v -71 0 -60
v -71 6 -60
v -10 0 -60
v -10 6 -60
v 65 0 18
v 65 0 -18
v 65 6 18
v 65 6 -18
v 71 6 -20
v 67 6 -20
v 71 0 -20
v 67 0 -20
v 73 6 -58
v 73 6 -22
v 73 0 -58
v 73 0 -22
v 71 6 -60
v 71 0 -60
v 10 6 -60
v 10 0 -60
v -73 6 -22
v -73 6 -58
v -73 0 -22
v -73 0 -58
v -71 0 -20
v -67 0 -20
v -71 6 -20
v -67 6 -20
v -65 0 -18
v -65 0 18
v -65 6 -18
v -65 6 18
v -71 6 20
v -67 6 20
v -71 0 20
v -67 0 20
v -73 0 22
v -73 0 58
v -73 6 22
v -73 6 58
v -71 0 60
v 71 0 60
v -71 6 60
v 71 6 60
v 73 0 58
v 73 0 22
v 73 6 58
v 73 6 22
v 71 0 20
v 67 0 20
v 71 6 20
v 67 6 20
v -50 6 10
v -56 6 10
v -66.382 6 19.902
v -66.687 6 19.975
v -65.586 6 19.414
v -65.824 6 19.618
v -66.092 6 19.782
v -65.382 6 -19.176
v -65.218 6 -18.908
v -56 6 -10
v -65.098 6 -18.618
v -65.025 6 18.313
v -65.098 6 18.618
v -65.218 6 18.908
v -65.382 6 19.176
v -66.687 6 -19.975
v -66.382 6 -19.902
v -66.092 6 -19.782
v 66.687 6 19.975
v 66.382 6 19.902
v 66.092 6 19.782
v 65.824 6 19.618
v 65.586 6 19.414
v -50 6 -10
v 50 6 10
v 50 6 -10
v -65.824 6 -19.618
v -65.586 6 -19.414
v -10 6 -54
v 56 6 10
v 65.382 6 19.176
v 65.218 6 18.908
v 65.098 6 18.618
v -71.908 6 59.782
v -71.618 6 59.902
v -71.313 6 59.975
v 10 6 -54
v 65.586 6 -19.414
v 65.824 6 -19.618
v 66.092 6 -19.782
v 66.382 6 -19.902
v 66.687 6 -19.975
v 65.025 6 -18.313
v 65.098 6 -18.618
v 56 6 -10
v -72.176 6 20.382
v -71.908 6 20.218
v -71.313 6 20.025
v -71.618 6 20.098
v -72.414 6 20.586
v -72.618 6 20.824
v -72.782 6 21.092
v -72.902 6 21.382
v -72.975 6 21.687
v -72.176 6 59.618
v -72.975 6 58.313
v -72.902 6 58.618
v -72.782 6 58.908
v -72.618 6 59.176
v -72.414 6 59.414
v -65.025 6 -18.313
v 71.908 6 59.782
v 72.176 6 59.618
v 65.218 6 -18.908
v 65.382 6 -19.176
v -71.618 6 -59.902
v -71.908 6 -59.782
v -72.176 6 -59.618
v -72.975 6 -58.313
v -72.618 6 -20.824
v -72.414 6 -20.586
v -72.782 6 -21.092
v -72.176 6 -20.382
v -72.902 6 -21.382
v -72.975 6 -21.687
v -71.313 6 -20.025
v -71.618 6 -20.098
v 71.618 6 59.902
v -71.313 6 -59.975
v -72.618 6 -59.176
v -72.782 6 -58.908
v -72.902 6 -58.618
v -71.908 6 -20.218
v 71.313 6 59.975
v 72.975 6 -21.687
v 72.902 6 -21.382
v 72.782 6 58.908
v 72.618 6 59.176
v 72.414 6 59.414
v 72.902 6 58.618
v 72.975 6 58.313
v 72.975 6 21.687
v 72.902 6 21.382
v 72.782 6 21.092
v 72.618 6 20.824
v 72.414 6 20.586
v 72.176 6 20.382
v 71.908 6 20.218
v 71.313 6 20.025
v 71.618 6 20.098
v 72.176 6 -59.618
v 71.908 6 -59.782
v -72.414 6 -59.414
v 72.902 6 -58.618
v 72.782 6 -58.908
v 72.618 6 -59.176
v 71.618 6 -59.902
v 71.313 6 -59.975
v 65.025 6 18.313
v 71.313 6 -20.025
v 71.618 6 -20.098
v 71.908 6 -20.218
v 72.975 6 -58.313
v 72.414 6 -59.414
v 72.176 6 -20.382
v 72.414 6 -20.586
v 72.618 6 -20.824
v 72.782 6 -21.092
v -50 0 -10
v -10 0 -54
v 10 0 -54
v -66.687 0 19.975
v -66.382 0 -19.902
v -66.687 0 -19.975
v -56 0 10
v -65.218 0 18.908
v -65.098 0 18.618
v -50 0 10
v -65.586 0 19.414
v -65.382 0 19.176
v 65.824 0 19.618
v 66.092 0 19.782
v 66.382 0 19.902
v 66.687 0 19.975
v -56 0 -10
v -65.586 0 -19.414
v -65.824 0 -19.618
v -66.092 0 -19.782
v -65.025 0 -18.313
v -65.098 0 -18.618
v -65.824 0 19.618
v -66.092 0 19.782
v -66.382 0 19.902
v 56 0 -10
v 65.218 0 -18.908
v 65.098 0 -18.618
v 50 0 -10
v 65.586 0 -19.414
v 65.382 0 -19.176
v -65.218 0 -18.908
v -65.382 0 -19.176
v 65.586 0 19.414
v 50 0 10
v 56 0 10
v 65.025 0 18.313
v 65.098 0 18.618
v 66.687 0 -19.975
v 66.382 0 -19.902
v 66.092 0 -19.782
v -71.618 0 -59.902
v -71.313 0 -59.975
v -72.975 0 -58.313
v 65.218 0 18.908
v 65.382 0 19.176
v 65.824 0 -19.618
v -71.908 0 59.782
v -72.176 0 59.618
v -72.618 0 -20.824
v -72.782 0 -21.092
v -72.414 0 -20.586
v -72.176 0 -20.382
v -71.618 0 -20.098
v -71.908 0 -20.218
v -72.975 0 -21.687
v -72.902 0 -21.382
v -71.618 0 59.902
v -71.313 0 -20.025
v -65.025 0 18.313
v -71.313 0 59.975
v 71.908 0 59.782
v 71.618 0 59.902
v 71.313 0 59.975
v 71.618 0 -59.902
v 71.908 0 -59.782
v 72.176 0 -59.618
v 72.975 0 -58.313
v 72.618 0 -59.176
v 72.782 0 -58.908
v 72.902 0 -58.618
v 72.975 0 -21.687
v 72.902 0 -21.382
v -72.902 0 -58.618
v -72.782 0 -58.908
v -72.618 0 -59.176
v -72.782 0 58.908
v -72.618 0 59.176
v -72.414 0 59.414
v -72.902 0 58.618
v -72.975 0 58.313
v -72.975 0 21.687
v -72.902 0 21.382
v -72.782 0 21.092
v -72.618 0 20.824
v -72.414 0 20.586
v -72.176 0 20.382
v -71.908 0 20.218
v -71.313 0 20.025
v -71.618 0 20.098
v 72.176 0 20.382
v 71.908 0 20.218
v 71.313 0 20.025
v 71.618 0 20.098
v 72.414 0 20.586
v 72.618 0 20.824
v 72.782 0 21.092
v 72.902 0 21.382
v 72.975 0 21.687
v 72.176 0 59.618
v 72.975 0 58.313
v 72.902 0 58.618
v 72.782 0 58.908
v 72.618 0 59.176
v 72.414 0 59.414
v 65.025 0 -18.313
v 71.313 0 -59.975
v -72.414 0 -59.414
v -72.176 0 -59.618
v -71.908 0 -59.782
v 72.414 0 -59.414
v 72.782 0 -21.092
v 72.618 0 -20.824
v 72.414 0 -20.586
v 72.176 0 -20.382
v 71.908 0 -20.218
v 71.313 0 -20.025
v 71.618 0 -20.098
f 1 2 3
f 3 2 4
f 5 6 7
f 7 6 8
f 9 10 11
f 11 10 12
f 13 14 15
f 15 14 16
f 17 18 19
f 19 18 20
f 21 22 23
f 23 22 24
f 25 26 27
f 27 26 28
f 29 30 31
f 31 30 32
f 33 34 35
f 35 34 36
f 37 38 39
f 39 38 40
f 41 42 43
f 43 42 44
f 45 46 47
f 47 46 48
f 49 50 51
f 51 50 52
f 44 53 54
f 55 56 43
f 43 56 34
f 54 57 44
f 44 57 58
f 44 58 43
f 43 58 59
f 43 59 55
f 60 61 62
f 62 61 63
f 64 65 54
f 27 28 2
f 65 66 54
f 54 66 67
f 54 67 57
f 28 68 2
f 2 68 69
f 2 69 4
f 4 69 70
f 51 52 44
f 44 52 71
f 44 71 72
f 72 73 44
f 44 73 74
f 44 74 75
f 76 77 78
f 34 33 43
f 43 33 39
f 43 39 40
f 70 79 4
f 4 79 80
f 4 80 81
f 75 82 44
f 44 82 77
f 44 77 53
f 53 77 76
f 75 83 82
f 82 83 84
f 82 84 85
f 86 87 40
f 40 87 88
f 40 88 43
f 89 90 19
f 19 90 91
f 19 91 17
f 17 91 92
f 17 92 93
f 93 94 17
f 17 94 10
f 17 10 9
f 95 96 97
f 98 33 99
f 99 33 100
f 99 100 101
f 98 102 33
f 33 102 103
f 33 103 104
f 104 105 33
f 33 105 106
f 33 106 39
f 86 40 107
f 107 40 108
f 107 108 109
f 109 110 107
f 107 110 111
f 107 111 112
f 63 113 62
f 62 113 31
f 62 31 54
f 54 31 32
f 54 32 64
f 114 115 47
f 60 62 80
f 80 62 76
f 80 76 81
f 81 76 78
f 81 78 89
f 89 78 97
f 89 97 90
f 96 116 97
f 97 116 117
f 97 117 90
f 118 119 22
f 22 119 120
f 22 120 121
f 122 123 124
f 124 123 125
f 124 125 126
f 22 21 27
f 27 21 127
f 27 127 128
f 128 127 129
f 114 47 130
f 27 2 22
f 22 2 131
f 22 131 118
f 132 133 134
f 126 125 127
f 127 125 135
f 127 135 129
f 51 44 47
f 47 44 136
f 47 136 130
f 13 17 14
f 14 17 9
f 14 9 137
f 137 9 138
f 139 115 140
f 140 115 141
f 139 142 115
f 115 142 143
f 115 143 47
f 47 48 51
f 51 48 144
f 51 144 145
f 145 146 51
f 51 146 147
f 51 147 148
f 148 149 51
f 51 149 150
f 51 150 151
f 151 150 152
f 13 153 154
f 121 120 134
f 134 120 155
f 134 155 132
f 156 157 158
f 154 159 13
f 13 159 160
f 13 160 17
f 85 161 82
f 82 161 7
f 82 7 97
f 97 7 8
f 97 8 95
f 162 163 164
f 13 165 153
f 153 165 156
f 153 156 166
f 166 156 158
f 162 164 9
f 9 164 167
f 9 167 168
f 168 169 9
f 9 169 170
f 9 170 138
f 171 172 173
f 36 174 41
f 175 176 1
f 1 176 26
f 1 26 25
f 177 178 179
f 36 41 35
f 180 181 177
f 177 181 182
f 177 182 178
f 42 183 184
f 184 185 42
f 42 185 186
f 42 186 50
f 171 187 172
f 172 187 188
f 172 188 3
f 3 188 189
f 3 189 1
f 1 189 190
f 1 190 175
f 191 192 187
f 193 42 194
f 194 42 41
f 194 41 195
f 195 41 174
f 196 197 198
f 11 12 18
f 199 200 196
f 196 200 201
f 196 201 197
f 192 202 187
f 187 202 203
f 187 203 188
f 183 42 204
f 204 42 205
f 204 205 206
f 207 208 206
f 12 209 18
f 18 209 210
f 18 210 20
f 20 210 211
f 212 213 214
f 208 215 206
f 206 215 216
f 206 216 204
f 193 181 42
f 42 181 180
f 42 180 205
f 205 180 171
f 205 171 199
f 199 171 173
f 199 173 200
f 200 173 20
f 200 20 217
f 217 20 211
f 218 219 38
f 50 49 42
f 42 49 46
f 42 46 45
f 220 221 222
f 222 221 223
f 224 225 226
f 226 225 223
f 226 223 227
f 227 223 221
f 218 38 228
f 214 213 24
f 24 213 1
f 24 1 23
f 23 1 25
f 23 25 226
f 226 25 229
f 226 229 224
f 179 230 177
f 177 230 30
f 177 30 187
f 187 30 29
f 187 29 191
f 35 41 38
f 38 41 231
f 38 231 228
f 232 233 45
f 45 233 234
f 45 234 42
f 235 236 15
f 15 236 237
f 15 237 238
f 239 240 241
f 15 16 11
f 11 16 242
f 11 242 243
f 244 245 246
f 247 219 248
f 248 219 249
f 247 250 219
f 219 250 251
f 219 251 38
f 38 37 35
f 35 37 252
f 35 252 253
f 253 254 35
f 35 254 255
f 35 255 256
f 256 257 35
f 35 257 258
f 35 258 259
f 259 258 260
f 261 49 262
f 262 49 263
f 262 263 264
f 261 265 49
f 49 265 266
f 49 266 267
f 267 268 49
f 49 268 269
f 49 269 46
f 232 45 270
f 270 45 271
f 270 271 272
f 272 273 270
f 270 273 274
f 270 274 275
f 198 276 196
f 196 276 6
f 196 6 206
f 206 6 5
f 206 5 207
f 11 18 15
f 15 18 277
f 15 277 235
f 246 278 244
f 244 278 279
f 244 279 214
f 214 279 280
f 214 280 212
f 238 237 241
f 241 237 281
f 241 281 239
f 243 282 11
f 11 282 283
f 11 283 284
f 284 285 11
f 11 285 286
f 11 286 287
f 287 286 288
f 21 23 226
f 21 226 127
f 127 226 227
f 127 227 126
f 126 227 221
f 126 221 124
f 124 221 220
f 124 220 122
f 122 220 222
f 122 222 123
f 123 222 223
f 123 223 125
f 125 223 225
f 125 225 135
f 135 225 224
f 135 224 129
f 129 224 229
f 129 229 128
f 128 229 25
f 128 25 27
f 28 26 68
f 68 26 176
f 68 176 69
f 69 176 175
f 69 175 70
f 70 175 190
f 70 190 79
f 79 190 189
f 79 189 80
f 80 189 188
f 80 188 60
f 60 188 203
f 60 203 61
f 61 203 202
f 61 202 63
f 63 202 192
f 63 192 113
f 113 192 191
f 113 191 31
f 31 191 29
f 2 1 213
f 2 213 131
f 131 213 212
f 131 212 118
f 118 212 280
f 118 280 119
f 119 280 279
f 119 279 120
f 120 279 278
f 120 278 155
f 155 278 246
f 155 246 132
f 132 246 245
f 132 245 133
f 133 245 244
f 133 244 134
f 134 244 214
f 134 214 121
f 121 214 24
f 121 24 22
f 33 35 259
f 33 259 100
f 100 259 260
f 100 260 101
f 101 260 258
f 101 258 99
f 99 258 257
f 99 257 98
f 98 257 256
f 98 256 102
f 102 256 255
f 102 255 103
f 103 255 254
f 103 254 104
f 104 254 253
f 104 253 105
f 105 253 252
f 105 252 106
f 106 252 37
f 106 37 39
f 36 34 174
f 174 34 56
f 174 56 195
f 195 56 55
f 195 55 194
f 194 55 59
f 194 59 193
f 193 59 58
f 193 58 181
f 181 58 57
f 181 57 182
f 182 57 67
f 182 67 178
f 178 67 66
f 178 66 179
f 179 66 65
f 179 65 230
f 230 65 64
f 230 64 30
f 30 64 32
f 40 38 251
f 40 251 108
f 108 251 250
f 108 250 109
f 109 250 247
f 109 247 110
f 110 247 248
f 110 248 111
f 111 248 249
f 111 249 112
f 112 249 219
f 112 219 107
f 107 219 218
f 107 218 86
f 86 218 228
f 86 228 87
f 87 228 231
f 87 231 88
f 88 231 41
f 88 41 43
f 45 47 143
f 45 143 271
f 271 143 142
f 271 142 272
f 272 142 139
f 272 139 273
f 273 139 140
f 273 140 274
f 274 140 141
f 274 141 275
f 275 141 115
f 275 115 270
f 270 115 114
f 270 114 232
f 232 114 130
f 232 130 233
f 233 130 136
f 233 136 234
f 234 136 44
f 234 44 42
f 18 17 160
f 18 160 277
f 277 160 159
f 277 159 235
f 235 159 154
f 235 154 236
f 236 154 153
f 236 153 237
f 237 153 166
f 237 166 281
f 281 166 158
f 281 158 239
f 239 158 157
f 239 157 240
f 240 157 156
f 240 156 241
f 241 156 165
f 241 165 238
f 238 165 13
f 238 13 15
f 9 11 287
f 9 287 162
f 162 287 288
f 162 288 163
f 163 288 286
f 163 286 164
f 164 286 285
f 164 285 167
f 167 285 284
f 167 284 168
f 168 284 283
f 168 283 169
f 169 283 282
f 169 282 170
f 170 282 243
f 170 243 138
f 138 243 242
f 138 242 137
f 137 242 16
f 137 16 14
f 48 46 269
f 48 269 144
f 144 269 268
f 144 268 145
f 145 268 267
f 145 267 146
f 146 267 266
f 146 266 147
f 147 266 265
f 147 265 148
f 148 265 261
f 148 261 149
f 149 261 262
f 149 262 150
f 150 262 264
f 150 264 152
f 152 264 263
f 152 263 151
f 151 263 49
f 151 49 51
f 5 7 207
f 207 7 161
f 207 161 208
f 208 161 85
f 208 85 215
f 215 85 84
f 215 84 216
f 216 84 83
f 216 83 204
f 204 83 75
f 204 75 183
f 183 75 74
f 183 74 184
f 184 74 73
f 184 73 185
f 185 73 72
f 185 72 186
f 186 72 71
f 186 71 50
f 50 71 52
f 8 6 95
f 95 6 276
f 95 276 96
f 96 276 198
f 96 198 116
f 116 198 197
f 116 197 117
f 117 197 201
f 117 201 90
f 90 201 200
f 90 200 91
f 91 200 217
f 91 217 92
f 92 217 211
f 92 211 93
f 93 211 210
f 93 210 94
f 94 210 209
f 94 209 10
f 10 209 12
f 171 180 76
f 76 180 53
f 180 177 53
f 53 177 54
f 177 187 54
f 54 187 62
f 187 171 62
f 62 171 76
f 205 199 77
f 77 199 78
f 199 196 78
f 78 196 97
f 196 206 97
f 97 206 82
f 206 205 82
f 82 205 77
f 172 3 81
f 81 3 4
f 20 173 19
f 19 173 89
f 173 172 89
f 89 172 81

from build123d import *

# Parameters (mm, degrees)
BOSS_EXTRUDE1_DEPTH     = 6
FILLET1_R               = 2
CUT_EXTRUDE1_DEPTH      = 95.683683917
CUT_EXTRUDE1_DEPTH_BACK = 95.683683917
SKETCH2_W               = 6
SKETCH2_H               = 20
SKETCH3_W               = 20
SKETCH3_H               = 6
CUT_EXTRUDE2_DEPTH      = 95.683683917


with BuildPart() as part:
    # Sketch1 → Boss-Extrude1 (new body)
    with BuildSketch(Plane(origin=(0, 0, 0), x_dir=(1, 0, 0), z_dir=(0, 1, 0))):
        Polygon((65, 20), (65, -20), (73, -20), (73, -60), (-73, -60), (-73, -20), (-65, -20), (-65, 20), (-73, 20), (-73, 60), (73, 60), (73, 20), align=None)
    extrude(amount=BOSS_EXTRUDE1_DEPTH)

    # Fillet1
    fillet1_edges = [part.edges().sort_by_distance(p)[0] for p in [
        (65, 3, 20),
        (73, 3, 20),
        (73, 3, 60),
        (-73, 3, 60),
        (-73, 3, 20),
        (-65, 3, 20),
        (-65, 3, -20),
        (-73, 3, -20),
        (-73, 3, -60),
        (73, 3, -60),
        (73, 3, -20),
        (65, 3, -20),
    ]]
    fillet(fillet1_edges, radius=FILLET1_R)

    # Sketch2 → Cut-Extrude1 (cut, two sides: drawn at the far end of the back side and taken through both)
    with BuildSketch(Plane(origin=(0, 6, 0), x_dir=(1, 0, 0), z_dir=(0, 1, 0)).offset(-CUT_EXTRUDE1_DEPTH_BACK)):
        with Locations((53, 0)):
            Rectangle(SKETCH2_W, SKETCH2_H)
        with Locations((-53, 0)):
            Rectangle(SKETCH2_W, SKETCH2_H)
    extrude(amount=CUT_EXTRUDE1_DEPTH + CUT_EXTRUDE1_DEPTH_BACK, mode=Mode.SUBTRACT)

    # Sketch3 → Cut-Extrude2 (cut, through all)
    with BuildSketch(Plane(origin=(0, 6, 0), x_dir=(1, 0, 0), z_dir=(0, 1, 0))):
        with Locations((0, 57)):
            Rectangle(SKETCH3_W, SKETCH3_H)
    extrude(amount=-CUT_EXTRUDE2_DEPTH, mode=Mode.SUBTRACT)


solid = part.part
